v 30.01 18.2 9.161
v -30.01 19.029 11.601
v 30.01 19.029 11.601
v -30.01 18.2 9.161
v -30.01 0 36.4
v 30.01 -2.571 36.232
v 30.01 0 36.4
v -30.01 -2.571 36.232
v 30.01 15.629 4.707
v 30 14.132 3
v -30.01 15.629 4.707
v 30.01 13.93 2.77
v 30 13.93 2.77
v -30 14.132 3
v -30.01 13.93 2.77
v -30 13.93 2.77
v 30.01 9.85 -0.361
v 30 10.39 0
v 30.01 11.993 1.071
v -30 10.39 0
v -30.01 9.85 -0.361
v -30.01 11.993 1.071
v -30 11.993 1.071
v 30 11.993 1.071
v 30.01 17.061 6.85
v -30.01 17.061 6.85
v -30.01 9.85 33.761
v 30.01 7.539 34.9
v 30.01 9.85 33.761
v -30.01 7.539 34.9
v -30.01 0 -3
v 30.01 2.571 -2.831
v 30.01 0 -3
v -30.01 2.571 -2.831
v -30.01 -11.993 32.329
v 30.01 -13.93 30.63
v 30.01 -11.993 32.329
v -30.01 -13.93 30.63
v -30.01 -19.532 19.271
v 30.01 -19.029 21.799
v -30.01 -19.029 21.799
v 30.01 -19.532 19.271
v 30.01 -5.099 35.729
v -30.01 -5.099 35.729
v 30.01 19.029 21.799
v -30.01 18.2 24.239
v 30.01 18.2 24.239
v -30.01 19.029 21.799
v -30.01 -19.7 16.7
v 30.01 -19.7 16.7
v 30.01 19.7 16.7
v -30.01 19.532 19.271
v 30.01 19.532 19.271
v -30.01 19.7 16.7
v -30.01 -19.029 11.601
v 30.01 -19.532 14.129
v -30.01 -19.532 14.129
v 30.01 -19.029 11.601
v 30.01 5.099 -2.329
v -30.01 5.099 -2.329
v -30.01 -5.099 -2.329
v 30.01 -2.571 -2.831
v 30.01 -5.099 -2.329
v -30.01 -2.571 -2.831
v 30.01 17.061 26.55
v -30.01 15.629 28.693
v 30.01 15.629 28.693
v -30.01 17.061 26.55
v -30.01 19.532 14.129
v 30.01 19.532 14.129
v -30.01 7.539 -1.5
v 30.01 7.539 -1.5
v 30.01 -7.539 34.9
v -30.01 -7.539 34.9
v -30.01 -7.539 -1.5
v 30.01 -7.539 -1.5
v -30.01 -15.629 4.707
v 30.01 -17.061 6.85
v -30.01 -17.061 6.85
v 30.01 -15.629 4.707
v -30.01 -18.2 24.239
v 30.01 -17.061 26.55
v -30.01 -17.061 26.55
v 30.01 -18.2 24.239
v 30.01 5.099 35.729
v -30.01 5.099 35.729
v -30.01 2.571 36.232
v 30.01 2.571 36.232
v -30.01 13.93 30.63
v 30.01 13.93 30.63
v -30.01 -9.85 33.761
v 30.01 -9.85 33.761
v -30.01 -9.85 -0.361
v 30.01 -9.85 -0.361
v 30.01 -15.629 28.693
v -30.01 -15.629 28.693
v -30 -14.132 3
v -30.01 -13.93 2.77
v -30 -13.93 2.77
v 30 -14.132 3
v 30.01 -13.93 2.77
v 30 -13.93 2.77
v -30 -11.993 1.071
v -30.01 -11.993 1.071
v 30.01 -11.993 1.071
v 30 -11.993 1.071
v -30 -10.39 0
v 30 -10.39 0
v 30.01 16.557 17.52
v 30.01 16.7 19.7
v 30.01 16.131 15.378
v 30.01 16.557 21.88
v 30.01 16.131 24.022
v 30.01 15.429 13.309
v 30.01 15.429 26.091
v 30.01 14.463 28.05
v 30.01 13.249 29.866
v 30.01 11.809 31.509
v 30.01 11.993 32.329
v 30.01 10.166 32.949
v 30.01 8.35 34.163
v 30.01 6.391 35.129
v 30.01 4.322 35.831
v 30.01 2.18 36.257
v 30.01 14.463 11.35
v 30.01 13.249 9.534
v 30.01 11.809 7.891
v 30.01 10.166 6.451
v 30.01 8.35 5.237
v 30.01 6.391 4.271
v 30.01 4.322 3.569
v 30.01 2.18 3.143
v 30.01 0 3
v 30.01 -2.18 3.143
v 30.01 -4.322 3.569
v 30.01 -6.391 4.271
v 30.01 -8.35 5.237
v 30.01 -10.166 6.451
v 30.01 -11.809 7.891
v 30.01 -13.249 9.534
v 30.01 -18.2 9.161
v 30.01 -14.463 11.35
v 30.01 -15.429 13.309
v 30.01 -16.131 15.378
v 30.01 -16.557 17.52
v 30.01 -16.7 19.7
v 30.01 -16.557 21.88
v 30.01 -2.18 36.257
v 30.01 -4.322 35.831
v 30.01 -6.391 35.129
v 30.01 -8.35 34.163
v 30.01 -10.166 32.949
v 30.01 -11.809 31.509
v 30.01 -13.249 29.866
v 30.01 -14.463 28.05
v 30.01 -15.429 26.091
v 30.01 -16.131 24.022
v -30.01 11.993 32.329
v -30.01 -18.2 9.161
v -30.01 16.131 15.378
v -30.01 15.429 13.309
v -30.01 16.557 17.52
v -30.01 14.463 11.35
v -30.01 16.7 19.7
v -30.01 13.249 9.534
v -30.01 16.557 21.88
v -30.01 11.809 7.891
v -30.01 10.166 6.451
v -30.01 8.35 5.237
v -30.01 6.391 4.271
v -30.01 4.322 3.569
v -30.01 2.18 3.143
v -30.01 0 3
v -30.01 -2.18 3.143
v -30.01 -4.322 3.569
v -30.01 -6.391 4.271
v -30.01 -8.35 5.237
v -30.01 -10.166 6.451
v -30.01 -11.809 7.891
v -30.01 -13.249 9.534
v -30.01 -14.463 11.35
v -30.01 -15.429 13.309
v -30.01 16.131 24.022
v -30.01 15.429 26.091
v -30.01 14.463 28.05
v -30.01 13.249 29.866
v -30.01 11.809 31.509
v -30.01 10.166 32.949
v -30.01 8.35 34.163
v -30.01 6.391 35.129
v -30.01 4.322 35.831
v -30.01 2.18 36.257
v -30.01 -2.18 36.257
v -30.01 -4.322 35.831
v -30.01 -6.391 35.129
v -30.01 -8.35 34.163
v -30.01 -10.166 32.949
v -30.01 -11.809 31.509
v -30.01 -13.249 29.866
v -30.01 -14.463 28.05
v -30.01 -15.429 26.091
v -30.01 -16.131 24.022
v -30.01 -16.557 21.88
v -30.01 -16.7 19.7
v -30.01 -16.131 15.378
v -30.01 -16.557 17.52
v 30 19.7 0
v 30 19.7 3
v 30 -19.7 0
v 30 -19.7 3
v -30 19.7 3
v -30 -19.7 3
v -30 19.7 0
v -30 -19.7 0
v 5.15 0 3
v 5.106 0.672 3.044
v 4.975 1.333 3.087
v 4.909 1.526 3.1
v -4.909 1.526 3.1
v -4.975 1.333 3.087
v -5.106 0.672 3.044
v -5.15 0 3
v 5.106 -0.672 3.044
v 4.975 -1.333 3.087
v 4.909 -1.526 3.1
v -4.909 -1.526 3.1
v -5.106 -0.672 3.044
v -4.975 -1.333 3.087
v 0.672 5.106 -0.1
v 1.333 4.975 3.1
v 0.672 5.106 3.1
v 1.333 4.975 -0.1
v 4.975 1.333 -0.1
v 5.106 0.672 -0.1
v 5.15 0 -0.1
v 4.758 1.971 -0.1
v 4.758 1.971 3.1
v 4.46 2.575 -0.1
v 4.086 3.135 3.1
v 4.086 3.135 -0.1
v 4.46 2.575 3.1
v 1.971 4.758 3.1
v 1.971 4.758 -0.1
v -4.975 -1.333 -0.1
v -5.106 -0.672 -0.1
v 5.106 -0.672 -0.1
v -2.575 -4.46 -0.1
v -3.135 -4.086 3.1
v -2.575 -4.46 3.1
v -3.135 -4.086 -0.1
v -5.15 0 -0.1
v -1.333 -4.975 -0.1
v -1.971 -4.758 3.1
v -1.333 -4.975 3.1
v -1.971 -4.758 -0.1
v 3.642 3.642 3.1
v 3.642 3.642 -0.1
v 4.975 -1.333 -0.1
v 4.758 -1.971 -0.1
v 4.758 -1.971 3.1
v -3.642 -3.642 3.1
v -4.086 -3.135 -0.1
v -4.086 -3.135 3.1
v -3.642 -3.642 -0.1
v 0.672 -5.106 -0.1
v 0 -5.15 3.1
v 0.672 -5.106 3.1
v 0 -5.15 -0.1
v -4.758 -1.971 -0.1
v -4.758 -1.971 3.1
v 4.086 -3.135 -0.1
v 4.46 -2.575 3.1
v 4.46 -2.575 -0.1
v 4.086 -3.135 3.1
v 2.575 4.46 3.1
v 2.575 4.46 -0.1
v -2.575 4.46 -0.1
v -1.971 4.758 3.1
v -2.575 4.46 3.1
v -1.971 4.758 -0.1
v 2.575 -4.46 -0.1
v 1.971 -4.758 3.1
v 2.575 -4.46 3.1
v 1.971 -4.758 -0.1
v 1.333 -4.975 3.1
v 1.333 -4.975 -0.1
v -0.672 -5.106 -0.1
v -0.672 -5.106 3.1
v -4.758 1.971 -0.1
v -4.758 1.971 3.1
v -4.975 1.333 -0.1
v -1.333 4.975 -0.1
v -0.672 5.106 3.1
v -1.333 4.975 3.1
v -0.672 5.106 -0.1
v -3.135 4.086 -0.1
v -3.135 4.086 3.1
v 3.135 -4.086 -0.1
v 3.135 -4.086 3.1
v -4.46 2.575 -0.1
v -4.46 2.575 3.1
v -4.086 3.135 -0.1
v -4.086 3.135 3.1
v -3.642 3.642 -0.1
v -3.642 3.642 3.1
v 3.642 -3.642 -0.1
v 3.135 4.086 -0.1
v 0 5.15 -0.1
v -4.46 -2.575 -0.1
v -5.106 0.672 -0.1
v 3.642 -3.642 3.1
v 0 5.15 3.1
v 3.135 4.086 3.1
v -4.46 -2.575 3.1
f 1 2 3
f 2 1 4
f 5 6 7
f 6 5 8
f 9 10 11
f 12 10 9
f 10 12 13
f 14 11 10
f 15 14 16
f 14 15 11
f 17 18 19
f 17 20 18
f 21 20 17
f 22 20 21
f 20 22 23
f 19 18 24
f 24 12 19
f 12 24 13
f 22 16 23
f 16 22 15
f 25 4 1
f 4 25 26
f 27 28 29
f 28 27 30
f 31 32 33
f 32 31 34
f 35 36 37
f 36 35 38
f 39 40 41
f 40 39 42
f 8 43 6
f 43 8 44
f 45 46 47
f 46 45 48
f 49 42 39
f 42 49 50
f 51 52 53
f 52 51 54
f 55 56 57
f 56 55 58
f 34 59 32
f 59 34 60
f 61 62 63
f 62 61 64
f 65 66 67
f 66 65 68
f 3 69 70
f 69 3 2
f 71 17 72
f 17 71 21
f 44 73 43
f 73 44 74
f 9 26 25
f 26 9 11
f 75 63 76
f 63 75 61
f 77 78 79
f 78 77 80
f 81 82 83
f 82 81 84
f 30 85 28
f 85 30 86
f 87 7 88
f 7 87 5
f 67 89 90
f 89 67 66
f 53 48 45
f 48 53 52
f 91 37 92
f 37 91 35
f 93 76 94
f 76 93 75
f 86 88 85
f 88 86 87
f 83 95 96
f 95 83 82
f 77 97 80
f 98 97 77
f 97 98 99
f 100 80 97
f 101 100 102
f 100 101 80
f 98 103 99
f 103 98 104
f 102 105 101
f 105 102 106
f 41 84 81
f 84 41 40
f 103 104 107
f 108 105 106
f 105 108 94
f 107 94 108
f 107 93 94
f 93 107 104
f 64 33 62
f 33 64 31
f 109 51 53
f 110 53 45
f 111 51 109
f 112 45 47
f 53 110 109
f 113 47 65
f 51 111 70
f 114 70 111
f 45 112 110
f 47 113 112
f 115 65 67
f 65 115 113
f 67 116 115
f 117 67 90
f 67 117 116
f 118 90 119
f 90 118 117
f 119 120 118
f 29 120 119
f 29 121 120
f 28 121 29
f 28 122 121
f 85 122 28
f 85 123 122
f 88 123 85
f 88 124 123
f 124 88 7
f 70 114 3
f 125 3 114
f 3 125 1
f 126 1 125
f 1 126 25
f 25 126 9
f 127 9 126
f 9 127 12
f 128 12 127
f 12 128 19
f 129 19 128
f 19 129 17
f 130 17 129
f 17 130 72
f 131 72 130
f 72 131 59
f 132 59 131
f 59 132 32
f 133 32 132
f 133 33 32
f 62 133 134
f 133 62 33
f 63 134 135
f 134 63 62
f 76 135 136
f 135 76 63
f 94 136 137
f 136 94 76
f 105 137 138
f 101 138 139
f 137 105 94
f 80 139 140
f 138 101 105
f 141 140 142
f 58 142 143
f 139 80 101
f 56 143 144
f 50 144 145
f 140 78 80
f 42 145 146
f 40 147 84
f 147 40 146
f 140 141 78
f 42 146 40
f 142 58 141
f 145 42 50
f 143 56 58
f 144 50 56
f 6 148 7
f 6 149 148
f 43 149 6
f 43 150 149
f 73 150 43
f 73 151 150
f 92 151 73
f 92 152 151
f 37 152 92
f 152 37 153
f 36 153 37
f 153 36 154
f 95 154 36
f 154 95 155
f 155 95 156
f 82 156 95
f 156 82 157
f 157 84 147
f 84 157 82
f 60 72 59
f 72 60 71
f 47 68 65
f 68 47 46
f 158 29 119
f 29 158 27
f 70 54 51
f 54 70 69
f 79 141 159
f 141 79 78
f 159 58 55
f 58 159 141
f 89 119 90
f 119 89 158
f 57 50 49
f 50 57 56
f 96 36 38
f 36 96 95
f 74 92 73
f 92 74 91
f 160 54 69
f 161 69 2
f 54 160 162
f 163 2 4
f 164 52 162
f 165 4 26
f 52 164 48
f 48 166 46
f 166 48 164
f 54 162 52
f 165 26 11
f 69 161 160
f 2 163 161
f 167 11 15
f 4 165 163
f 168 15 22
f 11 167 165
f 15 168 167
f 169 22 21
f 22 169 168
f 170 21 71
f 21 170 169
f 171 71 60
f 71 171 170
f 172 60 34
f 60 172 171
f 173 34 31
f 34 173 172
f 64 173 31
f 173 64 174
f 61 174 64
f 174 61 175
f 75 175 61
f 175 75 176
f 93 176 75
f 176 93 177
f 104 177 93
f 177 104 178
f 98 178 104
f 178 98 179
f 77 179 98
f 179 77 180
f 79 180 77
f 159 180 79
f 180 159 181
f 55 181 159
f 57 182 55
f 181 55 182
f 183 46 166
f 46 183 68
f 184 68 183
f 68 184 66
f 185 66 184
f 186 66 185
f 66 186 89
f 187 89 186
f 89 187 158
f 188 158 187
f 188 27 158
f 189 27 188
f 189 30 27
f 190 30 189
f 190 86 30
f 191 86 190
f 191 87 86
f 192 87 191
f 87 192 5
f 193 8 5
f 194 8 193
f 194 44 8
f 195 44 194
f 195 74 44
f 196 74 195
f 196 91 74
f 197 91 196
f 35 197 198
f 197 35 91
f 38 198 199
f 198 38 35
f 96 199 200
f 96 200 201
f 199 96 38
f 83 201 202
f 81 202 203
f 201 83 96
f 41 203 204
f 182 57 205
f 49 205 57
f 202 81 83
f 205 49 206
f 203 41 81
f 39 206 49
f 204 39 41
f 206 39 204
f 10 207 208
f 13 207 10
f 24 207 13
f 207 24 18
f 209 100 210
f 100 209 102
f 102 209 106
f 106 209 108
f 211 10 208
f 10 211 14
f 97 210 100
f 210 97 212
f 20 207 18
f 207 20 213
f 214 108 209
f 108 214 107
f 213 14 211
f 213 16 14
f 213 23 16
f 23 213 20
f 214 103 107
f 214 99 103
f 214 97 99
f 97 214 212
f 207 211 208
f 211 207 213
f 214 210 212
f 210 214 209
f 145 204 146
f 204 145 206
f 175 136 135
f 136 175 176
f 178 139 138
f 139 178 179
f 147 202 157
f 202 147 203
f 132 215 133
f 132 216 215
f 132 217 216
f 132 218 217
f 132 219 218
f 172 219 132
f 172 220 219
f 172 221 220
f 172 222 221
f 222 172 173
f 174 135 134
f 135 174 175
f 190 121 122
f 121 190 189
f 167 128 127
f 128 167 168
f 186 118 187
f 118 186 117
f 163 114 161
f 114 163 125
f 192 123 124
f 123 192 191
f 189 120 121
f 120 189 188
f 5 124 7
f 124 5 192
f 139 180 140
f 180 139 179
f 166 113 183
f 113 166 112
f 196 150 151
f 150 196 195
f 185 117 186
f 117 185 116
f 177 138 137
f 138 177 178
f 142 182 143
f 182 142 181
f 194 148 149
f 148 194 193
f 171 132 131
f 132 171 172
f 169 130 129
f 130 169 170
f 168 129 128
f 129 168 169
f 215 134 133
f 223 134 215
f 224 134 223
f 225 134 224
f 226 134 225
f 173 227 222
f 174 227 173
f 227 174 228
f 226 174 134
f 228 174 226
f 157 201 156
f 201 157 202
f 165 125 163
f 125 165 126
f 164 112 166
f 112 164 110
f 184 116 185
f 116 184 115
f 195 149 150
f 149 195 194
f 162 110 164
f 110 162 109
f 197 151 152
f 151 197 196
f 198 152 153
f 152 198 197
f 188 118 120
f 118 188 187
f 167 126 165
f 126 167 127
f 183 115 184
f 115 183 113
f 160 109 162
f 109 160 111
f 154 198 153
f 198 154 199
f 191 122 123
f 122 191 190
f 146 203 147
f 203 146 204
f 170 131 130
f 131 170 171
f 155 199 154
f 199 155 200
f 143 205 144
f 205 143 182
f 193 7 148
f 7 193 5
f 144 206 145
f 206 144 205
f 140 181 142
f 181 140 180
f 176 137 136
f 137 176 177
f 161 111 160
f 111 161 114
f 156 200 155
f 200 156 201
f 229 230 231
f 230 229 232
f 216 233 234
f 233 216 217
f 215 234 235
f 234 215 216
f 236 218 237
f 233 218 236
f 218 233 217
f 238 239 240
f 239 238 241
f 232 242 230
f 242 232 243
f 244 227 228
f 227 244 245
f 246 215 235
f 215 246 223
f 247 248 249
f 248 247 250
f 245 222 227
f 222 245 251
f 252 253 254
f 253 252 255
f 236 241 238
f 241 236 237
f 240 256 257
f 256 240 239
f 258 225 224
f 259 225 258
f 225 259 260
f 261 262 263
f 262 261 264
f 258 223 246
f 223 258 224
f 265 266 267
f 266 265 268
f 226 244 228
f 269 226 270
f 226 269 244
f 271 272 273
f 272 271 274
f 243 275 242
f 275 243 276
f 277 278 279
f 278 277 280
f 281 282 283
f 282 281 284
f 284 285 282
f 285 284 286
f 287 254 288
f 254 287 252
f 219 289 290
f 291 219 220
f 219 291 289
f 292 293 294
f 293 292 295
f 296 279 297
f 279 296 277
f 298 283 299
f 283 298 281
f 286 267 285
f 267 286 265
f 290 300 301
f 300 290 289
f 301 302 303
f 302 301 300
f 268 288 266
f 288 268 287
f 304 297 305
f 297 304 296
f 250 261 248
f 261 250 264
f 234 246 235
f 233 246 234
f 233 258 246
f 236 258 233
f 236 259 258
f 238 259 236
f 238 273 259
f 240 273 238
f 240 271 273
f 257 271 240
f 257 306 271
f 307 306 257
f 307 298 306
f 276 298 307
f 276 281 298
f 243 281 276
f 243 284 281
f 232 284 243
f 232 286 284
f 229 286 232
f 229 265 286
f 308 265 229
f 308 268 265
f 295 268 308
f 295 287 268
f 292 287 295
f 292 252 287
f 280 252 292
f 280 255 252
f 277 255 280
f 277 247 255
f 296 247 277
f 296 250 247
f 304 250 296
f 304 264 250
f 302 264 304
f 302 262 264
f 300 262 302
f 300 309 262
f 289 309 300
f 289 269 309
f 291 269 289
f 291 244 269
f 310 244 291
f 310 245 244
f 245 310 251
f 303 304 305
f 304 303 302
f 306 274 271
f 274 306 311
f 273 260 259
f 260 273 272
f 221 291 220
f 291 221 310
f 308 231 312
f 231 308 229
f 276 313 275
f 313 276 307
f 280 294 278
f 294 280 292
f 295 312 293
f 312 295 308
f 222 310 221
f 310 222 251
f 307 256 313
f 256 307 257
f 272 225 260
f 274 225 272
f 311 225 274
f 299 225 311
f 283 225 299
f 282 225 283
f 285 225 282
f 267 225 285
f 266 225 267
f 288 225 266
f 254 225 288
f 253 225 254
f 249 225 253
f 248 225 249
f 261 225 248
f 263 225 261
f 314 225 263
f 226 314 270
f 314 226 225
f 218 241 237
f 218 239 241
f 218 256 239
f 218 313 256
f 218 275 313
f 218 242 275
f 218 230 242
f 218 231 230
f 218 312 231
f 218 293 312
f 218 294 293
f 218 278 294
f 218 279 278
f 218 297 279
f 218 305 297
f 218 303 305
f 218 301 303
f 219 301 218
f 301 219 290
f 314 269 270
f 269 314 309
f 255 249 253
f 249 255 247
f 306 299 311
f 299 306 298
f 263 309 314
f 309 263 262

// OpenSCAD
// file: params.scad
// Shared measurements for the hookswitch assembly (handset / hook / cradle / switch).
// Real caliper measurements taken 2026-07-20 (see CAD-BACKLOG.md) — no
// longer placeholders. switch_screw_d is still a guess (pin/screw size
// wasn't calipered); verify before drilling.

// --- Handset ---
// Measured handle neck width 32.8mm; +0.6mm printer clearance so the
// barrel doesn't bind in the trough (phone_saddle.scad cuts this exact dia).
handset_barrel_d   = 32.8 + 0.6;  // = 33.4
handset_rest_len   = 60;   // length of barrel section that sits in the saddle (not calipered — neck length, adjust if handset sits too shallow/deep)

// --- Hook lever (see-saw pressed down by handset weight) ---
lever_length       = 70;
lever_width        = 22;
lever_thickness    = 5;
pivot_pin_d        = 4;    // diameter of the pivot rod/pin (e.g. M4 bolt or steel rod)
pivot_offset       = 20;   // distance from lever's front edge to the pivot axis

// --- Microswitch (measured: 3-pin lever subminiature microswitch) ---
switch_body_w      = 12.9;   // body length (L)
switch_body_d      = 5.7;    // body width/thickness (W)
switch_body_h      = 6.2;    // body height (H), excludes pins & lever button
switch_lever_ext   = 4.1;    // lever extension above body top — clear this in switch_mount_h
switch_mount_hole_spacing = 6.0;  // measured mounting hole pitch
switch_screw_d     = 2.2;        // NOT calipered — guess for M2 self-tap, verify against actual pins

// --- IR blaster (persona/channel-switch signaling, see PHILOSOPHY.md #5) ---
ir_led_d           = 5;    // standard 5mm IR LED
ir_mount_w         = 20;
ir_mount_h         = 12;

// --- Earcon speaker (small dedicated driver for crt-earcon.sh beeps,
// separate from the handset earpiece -- see IDLE-BAIT.md) ---
earcon_speaker_d   = 28;   // typical small round speaker (e.g. 28mm mini driver)
earcon_grille_hole_d = 2;
earcon_grille_hole_spacing = 4;

// --- General ---
wall               = 3;
clearance          = 0.3;  // fit clearance between mating printed parts
$fn                = 48;
// main file
// "phone" part: the saddle/cup that the handset barrel physically rests in.
// Snap-fits onto the boss on top of hook_lever.scad. Printed separately so
// you can re-print just this piece to tune fit against your actual handset
// without reprinting the whole lever.
include <params.scad>

module phone_saddle() {
  difference() {
    union() {
      // cradle trough, slightly more than half-pipe so the handset seats
      // positively and doesn't roll out
      // h is handset_rest_len + a hair so its end caps don't land exactly
      // flush/coplanar with the base cube's ends (that coincidence is what
      // was tripping CGAL's manifold check)
      translate([0, 0, handset_barrel_d/2])
        rotate([0, 90, 0])
          cylinder(d = handset_barrel_d + wall*2, h = handset_rest_len + 0.02, center = true);

      // flat base so it sits flush on the lever boss
      translate([-handset_rest_len/2, -(handset_barrel_d/2 + wall), 0])
        cube([handset_rest_len, handset_barrel_d + wall*2, wall]);
    }
    // hollow out the trough itself
    translate([0, 0, handset_barrel_d/2 + wall])
      rotate([0, 90, 0])
        cylinder(d = handset_barrel_d, h = handset_rest_len + 2, center = true);

    // snap-fit socket for the lever boss (see hook_lever.scad lever_boss)
    translate([0, 0, -0.1])
      cylinder(d = 10 + clearance, h = wall + 0.2);
  }
}

phone_saddle();
